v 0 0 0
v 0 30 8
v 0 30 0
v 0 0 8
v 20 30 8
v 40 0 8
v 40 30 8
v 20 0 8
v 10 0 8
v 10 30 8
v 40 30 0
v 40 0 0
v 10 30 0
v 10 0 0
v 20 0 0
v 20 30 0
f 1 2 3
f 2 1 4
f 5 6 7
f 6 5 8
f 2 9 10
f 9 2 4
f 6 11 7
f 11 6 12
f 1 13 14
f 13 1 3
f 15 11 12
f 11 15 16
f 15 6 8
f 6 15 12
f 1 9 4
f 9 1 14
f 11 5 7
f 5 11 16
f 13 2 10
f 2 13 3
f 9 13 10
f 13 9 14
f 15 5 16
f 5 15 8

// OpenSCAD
module rectangular_box(length, width, height) {
  difference() {
    cube([length, width, height]);
    translate([length/2 - 10, 0, 0]) cube([10, width, height]);
    translate([-length/2 + 10, 0, 0]) cube([10, width, height]);
  }
}

rectangular_box(40, 30, 8);
